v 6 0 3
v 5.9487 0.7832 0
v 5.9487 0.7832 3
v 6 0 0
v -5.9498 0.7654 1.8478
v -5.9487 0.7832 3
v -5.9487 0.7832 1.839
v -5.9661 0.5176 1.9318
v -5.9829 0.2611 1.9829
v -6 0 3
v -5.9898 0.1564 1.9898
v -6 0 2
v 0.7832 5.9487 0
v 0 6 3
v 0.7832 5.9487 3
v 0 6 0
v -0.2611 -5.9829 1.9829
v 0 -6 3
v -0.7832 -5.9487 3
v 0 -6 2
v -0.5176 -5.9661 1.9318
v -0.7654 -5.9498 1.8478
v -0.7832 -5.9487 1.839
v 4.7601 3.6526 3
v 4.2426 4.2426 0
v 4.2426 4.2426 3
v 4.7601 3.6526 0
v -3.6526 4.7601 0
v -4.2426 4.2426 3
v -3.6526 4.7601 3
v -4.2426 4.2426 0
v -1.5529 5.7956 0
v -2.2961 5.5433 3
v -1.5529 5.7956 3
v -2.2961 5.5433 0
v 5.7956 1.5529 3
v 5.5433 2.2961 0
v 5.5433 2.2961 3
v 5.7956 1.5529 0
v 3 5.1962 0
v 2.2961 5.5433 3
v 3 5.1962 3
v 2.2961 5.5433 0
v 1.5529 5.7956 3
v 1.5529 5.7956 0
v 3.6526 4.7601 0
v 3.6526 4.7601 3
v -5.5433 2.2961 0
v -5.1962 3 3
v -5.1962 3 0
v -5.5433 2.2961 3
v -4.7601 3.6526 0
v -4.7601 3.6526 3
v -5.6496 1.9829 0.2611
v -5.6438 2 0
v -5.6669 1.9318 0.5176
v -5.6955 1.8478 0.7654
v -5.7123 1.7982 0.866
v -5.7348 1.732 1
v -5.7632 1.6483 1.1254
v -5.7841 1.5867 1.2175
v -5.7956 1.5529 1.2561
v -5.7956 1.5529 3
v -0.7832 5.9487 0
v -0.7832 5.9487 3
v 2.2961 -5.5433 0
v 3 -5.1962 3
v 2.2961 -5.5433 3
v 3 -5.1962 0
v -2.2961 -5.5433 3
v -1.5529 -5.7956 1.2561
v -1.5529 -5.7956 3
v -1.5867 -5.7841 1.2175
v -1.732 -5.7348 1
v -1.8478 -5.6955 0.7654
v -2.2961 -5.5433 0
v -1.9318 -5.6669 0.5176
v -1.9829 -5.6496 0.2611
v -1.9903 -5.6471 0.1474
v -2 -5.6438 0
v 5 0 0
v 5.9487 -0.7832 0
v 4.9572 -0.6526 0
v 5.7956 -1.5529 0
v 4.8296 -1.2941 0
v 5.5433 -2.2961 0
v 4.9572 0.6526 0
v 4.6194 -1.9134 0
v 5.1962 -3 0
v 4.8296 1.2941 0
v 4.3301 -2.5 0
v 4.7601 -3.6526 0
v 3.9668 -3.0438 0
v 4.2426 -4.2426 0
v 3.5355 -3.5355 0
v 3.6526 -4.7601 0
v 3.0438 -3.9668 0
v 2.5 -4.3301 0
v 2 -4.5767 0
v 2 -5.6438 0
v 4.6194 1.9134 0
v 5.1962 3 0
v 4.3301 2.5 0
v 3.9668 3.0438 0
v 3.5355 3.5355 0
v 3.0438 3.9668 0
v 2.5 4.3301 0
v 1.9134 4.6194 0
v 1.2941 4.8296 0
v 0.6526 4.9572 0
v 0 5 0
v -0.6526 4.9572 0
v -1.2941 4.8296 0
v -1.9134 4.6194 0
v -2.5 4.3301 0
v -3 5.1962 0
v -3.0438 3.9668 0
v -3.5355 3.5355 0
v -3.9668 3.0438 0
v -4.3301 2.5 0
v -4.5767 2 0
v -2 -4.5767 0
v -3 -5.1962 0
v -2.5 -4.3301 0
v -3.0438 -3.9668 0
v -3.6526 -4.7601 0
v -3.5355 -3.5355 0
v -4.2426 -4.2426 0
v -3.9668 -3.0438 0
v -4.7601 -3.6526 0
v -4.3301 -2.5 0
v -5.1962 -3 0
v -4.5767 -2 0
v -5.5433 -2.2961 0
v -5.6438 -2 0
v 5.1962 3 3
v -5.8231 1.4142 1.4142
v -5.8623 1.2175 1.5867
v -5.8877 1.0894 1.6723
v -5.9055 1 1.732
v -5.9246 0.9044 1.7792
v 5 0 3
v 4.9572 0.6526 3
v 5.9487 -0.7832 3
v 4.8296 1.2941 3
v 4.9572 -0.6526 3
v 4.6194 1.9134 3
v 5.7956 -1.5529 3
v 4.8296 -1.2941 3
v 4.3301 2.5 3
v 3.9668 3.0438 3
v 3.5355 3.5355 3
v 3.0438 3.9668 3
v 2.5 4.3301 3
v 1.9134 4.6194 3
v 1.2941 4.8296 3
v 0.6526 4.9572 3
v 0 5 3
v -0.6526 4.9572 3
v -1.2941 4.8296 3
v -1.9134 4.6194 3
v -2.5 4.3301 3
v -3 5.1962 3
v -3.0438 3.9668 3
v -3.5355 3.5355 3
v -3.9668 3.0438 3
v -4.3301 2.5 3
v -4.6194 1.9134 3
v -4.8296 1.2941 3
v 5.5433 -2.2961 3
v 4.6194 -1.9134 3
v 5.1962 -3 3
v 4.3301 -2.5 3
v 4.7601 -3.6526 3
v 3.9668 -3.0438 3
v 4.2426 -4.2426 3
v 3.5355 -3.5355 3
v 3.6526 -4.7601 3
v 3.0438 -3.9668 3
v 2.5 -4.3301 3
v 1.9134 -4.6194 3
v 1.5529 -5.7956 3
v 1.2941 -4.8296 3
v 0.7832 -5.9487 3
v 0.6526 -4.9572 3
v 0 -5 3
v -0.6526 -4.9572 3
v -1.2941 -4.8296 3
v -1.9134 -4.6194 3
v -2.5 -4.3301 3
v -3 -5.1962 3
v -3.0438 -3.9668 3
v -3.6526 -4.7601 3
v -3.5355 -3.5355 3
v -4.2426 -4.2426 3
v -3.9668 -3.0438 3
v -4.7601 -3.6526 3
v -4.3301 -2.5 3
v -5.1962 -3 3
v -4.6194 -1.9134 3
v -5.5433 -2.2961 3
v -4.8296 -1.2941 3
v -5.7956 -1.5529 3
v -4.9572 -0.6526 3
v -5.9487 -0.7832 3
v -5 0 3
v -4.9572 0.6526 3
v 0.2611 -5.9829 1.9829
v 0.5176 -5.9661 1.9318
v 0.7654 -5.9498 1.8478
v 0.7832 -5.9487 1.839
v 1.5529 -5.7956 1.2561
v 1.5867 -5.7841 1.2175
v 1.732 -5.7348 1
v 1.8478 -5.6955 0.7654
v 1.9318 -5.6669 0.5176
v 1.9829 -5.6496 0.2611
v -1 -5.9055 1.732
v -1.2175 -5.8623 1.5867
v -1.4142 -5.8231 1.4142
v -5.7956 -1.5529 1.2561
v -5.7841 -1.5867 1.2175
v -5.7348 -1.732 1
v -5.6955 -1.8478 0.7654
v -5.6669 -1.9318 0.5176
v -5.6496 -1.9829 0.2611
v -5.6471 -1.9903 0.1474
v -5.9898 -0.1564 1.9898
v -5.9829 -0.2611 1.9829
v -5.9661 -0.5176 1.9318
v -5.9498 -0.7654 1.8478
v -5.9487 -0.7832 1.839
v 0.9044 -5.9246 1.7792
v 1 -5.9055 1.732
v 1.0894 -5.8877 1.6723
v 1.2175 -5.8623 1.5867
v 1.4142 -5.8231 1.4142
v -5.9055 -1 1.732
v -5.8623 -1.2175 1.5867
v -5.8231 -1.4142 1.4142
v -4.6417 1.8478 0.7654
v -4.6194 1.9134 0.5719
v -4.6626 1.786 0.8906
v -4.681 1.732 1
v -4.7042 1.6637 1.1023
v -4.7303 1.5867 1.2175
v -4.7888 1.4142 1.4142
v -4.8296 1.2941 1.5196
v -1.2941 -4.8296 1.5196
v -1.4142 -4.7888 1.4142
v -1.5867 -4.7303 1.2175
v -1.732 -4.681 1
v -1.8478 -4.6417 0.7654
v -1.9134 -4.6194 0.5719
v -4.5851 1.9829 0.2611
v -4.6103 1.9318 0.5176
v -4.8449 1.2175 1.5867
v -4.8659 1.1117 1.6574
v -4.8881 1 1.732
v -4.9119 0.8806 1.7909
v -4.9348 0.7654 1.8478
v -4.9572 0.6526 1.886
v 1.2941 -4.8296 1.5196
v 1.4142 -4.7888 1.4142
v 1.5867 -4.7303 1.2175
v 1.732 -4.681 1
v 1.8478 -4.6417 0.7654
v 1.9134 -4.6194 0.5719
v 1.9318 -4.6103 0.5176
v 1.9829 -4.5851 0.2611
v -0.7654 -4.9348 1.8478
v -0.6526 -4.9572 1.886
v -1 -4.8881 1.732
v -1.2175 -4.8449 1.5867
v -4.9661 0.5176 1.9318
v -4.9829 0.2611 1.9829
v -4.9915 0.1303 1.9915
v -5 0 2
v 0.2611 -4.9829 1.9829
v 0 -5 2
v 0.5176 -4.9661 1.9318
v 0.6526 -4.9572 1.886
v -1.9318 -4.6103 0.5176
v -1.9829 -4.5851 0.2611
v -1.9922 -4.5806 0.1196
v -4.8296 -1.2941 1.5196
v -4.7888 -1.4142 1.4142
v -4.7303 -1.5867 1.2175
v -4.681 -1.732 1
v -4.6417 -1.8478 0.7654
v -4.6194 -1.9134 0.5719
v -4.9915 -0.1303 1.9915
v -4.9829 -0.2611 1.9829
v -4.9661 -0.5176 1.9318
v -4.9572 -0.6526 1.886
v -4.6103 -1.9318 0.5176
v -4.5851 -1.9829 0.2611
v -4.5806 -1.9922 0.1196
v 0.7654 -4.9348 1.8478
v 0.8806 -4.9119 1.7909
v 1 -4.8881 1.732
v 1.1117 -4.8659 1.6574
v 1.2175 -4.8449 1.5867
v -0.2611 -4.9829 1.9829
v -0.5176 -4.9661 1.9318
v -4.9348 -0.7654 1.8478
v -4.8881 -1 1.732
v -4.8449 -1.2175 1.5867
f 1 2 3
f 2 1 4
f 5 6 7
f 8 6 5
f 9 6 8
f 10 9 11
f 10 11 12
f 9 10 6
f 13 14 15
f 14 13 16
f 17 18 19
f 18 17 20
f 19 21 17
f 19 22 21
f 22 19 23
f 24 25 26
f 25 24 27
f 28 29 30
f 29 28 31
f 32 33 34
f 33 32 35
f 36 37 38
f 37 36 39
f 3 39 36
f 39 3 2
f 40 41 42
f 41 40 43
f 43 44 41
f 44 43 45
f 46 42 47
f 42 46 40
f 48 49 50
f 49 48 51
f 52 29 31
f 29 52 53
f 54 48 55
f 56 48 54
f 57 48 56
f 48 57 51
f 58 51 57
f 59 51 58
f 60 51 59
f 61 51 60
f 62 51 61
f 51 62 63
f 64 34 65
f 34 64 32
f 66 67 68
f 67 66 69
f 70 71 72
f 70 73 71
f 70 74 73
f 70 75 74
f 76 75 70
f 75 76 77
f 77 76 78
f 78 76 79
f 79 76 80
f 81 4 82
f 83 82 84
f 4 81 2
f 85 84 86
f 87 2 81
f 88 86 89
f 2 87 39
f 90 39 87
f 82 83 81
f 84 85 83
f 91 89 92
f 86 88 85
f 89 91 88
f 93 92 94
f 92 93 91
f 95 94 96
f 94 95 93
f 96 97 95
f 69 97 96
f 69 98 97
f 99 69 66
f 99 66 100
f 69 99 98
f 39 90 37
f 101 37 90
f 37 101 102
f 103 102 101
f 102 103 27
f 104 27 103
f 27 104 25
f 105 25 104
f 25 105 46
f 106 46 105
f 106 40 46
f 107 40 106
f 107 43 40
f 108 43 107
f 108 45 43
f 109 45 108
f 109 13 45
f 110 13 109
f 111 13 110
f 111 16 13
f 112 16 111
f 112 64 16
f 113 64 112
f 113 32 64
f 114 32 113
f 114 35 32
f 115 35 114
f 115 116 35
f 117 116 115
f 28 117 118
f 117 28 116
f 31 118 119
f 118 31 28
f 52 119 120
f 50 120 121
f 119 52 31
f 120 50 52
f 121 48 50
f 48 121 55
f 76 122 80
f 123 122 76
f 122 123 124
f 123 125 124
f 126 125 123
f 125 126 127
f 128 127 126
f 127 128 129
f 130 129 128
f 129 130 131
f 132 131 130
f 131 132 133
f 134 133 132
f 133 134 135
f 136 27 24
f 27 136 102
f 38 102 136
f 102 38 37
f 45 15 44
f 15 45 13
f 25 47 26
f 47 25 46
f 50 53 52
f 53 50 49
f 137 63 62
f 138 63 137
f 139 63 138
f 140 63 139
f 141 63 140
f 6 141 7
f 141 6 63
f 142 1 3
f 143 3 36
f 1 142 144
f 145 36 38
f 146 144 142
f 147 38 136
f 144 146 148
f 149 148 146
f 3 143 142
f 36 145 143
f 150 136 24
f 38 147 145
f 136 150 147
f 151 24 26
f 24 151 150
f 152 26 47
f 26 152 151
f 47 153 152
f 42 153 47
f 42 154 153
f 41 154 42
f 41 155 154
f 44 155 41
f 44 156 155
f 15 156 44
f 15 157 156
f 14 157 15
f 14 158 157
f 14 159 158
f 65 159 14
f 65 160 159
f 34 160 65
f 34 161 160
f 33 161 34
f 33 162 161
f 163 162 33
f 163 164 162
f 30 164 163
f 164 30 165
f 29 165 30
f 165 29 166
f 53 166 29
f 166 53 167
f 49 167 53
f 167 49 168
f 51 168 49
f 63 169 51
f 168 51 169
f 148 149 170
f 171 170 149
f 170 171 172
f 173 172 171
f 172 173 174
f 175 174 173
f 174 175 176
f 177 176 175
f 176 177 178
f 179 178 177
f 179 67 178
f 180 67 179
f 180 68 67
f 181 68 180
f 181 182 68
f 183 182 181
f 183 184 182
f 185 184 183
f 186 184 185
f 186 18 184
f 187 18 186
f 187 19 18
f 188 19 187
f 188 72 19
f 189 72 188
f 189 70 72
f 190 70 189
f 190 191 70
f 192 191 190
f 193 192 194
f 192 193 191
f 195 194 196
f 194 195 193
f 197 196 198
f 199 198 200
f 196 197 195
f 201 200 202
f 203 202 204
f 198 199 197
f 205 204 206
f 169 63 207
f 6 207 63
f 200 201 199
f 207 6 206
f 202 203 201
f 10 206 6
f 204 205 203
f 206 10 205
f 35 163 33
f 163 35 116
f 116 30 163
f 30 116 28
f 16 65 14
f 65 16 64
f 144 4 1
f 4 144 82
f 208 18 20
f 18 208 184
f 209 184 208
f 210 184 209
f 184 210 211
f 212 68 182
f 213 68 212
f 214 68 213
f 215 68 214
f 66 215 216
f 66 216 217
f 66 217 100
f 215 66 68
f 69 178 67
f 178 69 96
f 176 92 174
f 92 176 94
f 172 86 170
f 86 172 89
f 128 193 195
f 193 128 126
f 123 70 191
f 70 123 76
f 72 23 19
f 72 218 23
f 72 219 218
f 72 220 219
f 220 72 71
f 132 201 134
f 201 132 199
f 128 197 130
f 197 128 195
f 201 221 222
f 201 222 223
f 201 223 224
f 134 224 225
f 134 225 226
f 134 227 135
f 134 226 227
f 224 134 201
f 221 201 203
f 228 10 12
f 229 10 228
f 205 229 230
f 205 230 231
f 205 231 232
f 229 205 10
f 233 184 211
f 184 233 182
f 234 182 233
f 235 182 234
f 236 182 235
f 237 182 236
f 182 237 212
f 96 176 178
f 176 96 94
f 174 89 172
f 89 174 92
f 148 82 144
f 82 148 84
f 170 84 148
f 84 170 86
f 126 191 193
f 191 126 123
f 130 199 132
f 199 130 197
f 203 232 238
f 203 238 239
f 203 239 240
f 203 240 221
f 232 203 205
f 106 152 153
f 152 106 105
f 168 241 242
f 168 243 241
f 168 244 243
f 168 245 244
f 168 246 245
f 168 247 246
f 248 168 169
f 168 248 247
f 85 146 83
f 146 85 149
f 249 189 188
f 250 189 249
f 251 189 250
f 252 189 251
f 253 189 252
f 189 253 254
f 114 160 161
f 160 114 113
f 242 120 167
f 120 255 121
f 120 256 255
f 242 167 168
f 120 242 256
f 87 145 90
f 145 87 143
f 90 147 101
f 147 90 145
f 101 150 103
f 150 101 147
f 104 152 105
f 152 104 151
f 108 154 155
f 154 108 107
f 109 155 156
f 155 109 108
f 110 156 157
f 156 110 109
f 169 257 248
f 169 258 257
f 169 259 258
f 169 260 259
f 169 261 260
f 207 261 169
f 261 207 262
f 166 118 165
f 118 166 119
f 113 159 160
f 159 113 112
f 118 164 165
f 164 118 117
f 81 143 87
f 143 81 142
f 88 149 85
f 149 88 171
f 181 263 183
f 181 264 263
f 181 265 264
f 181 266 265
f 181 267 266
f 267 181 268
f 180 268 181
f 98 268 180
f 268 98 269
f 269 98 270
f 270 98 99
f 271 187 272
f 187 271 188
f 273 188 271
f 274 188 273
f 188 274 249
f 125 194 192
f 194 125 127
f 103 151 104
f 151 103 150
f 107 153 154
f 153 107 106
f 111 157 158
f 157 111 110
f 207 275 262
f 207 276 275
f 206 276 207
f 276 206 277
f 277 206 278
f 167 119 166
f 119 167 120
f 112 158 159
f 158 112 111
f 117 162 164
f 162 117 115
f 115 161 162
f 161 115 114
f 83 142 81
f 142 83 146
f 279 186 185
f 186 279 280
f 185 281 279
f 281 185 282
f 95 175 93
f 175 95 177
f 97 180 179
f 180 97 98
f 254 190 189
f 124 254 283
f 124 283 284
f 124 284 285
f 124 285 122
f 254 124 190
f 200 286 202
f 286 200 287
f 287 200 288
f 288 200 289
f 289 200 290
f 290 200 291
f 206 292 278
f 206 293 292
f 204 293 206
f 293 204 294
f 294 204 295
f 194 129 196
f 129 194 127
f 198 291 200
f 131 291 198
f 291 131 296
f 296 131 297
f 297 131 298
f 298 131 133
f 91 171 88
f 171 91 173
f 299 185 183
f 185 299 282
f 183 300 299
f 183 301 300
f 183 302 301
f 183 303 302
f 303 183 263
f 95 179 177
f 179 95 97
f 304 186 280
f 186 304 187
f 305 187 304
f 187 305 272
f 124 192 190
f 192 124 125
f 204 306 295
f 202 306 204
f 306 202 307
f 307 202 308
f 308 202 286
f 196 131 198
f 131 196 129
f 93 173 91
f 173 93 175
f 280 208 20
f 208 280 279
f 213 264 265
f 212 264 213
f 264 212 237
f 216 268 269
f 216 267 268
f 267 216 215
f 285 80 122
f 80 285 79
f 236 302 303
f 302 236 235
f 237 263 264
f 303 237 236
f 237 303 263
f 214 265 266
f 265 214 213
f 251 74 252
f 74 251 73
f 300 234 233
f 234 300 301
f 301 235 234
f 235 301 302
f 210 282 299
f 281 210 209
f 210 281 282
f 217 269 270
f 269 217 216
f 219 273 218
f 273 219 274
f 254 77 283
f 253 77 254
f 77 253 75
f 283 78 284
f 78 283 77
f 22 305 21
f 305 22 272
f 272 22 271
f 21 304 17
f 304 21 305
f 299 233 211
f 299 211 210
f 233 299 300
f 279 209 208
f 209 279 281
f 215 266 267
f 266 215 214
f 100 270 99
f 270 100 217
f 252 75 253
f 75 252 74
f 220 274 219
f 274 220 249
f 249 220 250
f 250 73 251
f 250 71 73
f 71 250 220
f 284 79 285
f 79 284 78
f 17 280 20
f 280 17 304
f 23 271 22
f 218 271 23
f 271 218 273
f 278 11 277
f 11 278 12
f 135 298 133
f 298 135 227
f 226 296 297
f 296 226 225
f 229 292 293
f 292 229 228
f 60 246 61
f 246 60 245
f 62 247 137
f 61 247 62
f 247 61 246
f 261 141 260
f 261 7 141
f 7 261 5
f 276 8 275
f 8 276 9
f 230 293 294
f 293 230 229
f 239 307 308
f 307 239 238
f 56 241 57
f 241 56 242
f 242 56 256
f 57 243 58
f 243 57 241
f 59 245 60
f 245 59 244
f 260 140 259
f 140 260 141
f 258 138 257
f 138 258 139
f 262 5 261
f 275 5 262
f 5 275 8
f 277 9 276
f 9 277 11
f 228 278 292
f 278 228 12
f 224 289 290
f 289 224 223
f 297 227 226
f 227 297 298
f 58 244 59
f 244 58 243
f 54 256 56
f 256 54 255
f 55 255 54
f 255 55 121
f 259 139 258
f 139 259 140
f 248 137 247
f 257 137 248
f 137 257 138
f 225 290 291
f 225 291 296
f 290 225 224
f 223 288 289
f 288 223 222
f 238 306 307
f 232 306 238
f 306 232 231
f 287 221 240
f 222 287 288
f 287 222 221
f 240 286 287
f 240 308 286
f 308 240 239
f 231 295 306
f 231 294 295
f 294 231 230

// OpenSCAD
// file: ../build_environments.scad
// build_environments.scad: modules to build level sections
//

module pool(diameter=10.0, wall_height=2.0, step_width=3.0, connections=[])
{
    difference() {
        union() {
        difference() {
            cylinder(h=0.5,r1=diameter+step_width,r2=diameter+step_width,$fn=48);
            translate([0,0,-0.1])
                cylinder(h=0.7,r1=diameter,r2=diameter,$fn=48);
        }
        difference() {
            cylinder(h=wall_height,r1=diameter+step_width+1.0,r2=diameter+step_width+1.0,$fn=48);
            translate([0,0,-0.1])
                cylinder(h=wall_height+0.2,r1=diameter+step_width,r2=diameter+step_width,$fn=48);
        }
        }
    
        for (c = connections)
        {
            rotate([0,90,0]) {
                angle = atan2(c[1],c[0]);
                rotate([-angle,0,0]) {
                    cylinder(h=diameter+5.0,r1=c[2],r2=c[2],$fn=48);
                }
            }
        }
    }
}

module straight(length=10.0, width=2.0, dy1=0.0, dy2=0.0, dz=0.0)
{
    dims = [0, 0, 0, 0, 0, (dz/length)];
    matrix = [
        [ 1, dims[0], dims[1], 0 ],
        [ dims[2], 1, dims[4], 0 ],
        [ dims[5], dims[3], 1, 0 ],
        [ 0, 0, 0, 1 ]
    ];
    multmatrix(matrix)
    difference() {
        translate([dy1,0,0])
        union() {
            rotate([0,90,0]) {
                difference() {
                    cylinder(h=(length-dy1-dy2),r1=width+1.0,r2=width+1.0,$fn=24);
                    translate([0,0,-0.1])
                        cylinder(h=(length-dy1-dy2+0.2),r1=width,r2=width,$fn=24);
                }
                difference() {
                    cylinder(h=1.0,r1=width+2.0,r2=width+2.0,$fn=24);
                    translate([0,0,-0.1])
                        cylinder(h=1.2,r1=width,r2=width,$fn=24);
                }
                translate([0,0,(length-dy1-dy2)-1.0]) {
                    difference() {
                        cylinder(h=1.0,r1=width+2.0,r2=width+2.0,$fn=24);
                        translate([0,0,-0.1])
                            cylinder(h=1.2,r1=width,r2=width,$fn=24);
                    }
                }
            }
        }
        translate([0,0,-(2*width+4.0)/2])
            cube([3*length,3*length,2*width+4.0],center=true);
    }
}

module curve(p0=[0,0], center=[0,0], dir=1, angle=0.0, width=2.0)
{
    radius = sqrt((p0[0]-center[0])*(p0[0]-center[0]) + (p0[1]-center[1])*(p0[1]-center[1]));
    if (dir == 0) {
        difference() {
            rotate([0,0,-90])
            difference() {
                rotate_extrude(angle = angle, convexity = 10, $fn=32)
                    translate([radius, 0, 0])
                        circle(r = width+1.0,$fn=24);
                rotate([0,0,-1.0])
                    rotate_extrude(angle = angle+2.0, convexity = 10, $fn=32)
                        translate([radius, 0, 0])
                            circle(r = width,$fn=24);
            }
            translate([0,0,-(2*width+4.0)/2])
                cube([5*radius,5*radius,2*width+4.0],center=true);
        }
    }
    else {
        difference() {
            rotate([0,0,90])
            difference() {
                rotate_extrude(angle = -angle, convexity = 10, $fn=32)
                    translate([radius, 0, 0])
                        circle(r = width+1.0,$fn=24);
                rotate([0,0,1.0])
                    rotate_extrude(angle = -angle-2.0, convexity = 10, $fn=32)
                        translate([radius, 0, 0])
                            circle(r = width,$fn=24);
            }
            translate([0,0,-(2*width+4.0)/2])
                cube([5*radius,5*radius,2*width+4.0],center=true);
        }
    }

}

// test pool
//pool(diameter=12.0000, wall_height=3.0000, step_width=3.0000, connections=[[0.0000,-26.0000,2.0000], [23.6074,0.0000,2.0000]]);

// test straight, slope
//straight(length=26.0000, width=2.0000, dy1=11.8322, dy2=6.7082, dz=0.0000);
//straight(length=29.1549, width=12.0000, dy1=0.0000, dy2=0.0000, dz=-15.0000);

// test curve
//curve(p0=[23.6074, 0.0000], center=[23.6074, 5.0000], dir=0, angle=60.1011, width=2.0000);
//curve(p0=[33.6426, 12.4219], center=[37.9771, 9.9295], dir=1, angle=120.4627, width=2.0000);
// main file
use <../build_environments.scad>;
pool(diameter=5.0000, wall_height=3.0000, step_width=0.0000, connections=[[0.0000,-14.0000,2.0000], [-14.0000,0.0000,2.0000]]);
